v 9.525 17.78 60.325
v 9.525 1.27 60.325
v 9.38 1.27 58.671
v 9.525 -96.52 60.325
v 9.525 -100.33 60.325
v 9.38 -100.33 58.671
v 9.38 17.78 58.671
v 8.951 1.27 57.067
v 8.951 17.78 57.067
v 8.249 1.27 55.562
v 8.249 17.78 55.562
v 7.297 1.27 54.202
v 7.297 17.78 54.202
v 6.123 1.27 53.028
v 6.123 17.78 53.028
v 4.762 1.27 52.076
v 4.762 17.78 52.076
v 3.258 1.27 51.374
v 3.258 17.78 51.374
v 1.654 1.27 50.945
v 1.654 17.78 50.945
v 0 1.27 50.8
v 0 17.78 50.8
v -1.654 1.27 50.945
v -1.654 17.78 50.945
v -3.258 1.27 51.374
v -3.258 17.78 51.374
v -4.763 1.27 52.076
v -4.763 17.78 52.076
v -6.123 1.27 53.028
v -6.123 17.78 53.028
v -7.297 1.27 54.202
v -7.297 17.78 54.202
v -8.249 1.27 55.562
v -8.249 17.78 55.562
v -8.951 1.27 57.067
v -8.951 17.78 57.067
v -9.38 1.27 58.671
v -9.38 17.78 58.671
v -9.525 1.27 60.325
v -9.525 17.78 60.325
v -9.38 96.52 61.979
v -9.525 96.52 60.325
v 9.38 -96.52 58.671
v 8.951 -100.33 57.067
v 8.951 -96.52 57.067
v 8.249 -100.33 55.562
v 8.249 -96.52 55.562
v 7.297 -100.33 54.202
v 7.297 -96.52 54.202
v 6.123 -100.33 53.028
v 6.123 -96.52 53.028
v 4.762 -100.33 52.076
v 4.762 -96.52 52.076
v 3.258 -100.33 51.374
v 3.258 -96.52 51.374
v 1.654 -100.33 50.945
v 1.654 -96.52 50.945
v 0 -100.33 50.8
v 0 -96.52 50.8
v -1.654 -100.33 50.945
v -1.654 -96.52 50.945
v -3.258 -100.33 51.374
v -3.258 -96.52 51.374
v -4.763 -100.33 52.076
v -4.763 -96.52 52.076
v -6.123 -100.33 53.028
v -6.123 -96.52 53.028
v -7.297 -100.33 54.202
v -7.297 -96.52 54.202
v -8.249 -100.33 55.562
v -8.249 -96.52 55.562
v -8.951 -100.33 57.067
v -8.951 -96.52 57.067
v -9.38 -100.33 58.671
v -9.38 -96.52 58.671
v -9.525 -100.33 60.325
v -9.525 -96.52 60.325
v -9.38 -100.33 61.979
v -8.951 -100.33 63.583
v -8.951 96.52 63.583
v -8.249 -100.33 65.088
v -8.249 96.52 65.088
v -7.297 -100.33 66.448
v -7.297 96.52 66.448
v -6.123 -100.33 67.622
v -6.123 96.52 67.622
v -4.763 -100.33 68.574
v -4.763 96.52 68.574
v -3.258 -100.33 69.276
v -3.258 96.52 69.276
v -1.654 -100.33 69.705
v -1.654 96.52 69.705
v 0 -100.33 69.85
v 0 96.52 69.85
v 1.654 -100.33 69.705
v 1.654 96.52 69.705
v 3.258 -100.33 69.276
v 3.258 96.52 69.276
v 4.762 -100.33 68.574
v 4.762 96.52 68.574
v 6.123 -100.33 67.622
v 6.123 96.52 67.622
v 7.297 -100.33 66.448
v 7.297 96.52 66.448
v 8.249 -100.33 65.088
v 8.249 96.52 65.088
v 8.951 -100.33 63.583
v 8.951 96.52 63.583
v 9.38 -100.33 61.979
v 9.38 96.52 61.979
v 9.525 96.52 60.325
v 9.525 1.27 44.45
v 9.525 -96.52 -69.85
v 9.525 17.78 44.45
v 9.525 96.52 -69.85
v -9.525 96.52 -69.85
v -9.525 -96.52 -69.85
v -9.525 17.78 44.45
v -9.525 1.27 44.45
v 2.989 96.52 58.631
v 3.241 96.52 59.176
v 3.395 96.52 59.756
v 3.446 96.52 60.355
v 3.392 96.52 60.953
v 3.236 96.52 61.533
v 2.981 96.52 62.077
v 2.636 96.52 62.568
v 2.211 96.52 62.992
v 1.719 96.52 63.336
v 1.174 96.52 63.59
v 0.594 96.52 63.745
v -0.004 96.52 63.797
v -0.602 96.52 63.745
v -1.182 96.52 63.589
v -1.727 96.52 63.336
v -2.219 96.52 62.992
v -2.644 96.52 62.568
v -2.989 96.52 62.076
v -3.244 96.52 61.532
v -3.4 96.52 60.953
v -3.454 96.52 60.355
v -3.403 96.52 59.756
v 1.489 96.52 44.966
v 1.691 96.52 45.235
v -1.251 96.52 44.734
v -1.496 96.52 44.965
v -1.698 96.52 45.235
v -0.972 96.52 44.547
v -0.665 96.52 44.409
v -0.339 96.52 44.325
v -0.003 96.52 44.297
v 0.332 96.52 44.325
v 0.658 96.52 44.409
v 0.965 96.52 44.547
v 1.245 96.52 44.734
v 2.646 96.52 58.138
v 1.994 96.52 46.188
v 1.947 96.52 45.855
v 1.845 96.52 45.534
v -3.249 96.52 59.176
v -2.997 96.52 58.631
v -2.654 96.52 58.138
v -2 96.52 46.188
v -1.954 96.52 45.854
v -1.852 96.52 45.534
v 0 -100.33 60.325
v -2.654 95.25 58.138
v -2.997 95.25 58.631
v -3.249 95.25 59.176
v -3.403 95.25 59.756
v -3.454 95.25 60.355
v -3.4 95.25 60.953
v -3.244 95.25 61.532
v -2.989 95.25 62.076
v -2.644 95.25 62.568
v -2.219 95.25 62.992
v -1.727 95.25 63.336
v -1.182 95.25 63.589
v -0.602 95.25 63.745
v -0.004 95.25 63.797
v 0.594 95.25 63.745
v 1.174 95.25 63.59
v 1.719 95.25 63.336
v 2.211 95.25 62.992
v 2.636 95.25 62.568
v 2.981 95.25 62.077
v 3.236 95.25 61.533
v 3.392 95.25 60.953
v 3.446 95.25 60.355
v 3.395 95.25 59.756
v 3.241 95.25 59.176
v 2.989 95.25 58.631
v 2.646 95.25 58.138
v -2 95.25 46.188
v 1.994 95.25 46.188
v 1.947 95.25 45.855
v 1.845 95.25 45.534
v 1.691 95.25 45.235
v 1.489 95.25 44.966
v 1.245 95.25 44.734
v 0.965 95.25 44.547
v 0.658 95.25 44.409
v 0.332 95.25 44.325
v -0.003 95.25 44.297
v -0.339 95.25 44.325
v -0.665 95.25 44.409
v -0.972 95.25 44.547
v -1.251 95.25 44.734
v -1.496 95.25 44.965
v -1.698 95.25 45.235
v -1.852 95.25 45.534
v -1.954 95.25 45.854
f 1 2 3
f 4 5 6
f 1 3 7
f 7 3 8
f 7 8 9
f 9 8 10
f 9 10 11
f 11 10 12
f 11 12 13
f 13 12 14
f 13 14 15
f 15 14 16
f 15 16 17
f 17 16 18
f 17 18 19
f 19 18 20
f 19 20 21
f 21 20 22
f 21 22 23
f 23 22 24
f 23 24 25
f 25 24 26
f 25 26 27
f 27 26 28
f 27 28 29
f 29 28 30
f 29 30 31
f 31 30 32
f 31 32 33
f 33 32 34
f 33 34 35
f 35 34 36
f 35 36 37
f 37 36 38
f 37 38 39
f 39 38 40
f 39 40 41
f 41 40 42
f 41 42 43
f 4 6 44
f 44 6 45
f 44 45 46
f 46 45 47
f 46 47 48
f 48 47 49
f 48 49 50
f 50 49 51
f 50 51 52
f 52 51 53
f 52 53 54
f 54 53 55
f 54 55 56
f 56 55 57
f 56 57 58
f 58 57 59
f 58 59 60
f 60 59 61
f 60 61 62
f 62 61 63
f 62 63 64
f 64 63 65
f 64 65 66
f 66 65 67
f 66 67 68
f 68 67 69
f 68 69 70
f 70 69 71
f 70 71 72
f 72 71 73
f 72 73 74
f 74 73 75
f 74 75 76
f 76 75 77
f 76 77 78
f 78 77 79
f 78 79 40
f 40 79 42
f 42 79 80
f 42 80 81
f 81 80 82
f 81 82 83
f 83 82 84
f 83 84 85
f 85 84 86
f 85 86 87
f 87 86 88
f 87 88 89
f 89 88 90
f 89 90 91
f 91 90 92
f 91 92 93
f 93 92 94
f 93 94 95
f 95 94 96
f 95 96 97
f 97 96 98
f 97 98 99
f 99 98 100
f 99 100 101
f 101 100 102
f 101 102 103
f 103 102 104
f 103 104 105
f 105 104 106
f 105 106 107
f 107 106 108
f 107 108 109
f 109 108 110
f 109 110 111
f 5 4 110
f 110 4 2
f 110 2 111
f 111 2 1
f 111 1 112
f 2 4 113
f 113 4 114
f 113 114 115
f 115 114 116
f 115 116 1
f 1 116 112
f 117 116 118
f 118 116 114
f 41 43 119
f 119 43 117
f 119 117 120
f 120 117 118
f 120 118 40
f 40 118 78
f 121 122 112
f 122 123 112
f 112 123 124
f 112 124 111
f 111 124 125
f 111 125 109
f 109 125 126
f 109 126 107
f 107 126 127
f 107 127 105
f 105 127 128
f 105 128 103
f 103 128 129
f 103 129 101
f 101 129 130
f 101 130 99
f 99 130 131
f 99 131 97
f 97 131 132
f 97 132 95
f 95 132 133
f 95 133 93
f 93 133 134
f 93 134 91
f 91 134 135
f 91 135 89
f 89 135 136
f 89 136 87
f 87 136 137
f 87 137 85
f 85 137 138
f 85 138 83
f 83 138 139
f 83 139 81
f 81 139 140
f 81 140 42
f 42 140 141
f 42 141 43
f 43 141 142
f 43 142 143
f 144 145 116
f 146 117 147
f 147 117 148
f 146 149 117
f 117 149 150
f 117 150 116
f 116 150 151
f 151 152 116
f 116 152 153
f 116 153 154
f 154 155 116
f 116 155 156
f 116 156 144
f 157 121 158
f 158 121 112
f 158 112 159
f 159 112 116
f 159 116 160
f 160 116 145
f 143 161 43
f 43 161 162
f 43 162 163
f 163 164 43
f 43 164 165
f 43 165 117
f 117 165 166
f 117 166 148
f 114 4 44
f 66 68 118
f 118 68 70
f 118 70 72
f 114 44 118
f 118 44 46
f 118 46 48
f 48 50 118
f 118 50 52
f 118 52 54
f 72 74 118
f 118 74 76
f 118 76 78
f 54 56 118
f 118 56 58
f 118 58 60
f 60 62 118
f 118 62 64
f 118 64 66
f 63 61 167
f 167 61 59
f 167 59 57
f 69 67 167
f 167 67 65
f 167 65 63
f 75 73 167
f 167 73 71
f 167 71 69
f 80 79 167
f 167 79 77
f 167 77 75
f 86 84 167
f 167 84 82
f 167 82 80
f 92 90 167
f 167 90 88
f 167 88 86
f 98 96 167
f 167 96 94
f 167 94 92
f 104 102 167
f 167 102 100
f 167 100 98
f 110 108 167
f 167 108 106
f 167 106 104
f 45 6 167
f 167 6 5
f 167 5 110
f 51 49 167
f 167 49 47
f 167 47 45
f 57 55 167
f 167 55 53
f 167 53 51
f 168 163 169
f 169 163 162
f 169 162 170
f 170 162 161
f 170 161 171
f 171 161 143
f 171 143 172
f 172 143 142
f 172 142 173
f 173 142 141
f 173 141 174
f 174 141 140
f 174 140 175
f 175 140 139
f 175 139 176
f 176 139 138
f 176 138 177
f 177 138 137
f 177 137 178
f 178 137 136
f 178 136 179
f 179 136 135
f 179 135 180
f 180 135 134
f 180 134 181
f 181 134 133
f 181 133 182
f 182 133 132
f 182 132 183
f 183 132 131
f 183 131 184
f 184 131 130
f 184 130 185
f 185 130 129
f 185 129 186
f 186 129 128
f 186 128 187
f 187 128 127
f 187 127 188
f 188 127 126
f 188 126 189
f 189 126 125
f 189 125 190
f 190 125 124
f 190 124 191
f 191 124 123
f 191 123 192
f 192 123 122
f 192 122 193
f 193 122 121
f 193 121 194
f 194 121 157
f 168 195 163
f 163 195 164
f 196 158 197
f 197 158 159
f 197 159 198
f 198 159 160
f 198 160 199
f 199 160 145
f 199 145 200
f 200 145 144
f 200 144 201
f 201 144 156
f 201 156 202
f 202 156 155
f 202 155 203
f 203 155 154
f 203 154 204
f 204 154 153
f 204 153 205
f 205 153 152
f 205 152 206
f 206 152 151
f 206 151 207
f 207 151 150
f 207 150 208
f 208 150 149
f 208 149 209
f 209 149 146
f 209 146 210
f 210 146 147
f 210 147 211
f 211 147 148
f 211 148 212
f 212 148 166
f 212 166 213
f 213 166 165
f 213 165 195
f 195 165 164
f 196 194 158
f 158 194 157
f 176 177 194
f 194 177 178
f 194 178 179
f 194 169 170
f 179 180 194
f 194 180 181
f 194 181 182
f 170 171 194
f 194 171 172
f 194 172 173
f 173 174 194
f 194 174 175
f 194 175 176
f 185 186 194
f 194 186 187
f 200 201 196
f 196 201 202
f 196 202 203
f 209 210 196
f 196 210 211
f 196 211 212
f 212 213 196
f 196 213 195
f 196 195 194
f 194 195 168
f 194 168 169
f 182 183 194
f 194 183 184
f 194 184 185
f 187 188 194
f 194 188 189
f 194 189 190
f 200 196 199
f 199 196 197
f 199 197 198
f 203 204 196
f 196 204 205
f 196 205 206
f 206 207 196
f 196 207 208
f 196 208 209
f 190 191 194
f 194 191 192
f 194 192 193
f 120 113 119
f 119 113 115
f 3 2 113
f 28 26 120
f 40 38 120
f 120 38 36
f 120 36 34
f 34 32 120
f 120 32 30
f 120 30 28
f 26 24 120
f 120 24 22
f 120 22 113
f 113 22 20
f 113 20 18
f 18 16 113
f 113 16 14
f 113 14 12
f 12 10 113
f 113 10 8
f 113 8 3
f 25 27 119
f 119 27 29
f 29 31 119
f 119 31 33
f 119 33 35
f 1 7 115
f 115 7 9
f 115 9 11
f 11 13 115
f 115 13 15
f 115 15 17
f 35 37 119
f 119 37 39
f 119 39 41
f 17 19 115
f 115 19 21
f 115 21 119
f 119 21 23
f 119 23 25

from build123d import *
from build123d.topology import SkipClean

# Parameters (mm, degrees)
BOSS_EXTRUDE1_DEPTH = 96.52
SKETCH2_R           = 9.525
BOSS_EXTRUDE2_DEPTH = 3.81
CUT_EXTRUDE1_DEPTH  = 1.27
CUT_EXTRUDE2_START  = -114.3
CUT_EXTRUDE2_DEPTH  = 16.51


with BuildPart() as part:
    # Sketch1 → Boss-Extrude1 (new, symmetric)
    with BuildSketch(Plane(origin=(0, 0, 0), x_dir=(1, 0, 0), z_dir=(0, 1, 0))):
        with BuildLine():
            ThreePointArc((-9.525, -60.325), (-6.735192091, -67.060192091), (0, -69.85))
            ThreePointArc((0, -69.85), (6.735192091, -67.060192091), (9.525, -60.325))
            Line((9.525, -60.325), (9.525, 69.85))
            Line((9.525, 69.85), (-9.525, 69.85))
            Line((-9.525, 69.85), (-9.525, -60.325))
        make_face()
    extrude(amount=BOSS_EXTRUDE1_DEPTH, both=True)

    # Sketch2 → Boss-Extrude2 (add)
    with SkipClean():  # the faces are left unmerged after this step: merging them gives an invalid solid
        with BuildSketch(Plane.XZ.offset(96.52)):
            with Locations(Location((0, 60.325, 0), (0, 0, 270))):
                Circle(SKETCH2_R)
        extrude(amount=BOSS_EXTRUDE2_DEPTH)

    # Sketch3 → Cut-Extrude1 (cut)
    with SkipClean():  # the faces are left unmerged after this step: merging them gives an invalid solid
        with BuildSketch(Plane(origin=(0, 96.52, 0), x_dir=(1, 0, 0), z_dir=(0, 1, 0))):
            with BuildLine():
                Line((-2.653910055, -58.137819903), (-2.000444386, -46.187796735))
                ThreePointArc((-2.000444386, -46.187796735), (-0.003346519, -44.297000013), (1.993597371, -46.187959354))
                Line((1.993597371, -46.187959354), (2.646089941, -58.138035694))
                ThreePointArc((2.646089941, -58.138035694), (-0.004140468, -63.796999997), (-2.653910055, -58.137819903))
            make_face()
        extrude(amount=-CUT_EXTRUDE1_DEPTH, mode=Mode.SUBTRACT)

    # Sketch5 → Cut-Extrude2 (cut)
    with SkipClean():  # the faces are left unmerged after this step: merging them gives an invalid solid
        with BuildSketch(Plane.XZ.offset(96.52).offset(CUT_EXTRUDE2_START)):
            with BuildLine():
                Line((9.525, 44.45), (-9.525, 44.45))
                Line((-9.525, 44.45), (-9.525, 60.325))
                ThreePointArc((-9.525, 60.325), (0, 50.8), (9.525, 60.325))
                Line((9.525, 60.325), (9.525, 44.45))
            make_face()
        extrude(amount=CUT_EXTRUDE2_DEPTH, mode=Mode.SUBTRACT)


solid = part.part
